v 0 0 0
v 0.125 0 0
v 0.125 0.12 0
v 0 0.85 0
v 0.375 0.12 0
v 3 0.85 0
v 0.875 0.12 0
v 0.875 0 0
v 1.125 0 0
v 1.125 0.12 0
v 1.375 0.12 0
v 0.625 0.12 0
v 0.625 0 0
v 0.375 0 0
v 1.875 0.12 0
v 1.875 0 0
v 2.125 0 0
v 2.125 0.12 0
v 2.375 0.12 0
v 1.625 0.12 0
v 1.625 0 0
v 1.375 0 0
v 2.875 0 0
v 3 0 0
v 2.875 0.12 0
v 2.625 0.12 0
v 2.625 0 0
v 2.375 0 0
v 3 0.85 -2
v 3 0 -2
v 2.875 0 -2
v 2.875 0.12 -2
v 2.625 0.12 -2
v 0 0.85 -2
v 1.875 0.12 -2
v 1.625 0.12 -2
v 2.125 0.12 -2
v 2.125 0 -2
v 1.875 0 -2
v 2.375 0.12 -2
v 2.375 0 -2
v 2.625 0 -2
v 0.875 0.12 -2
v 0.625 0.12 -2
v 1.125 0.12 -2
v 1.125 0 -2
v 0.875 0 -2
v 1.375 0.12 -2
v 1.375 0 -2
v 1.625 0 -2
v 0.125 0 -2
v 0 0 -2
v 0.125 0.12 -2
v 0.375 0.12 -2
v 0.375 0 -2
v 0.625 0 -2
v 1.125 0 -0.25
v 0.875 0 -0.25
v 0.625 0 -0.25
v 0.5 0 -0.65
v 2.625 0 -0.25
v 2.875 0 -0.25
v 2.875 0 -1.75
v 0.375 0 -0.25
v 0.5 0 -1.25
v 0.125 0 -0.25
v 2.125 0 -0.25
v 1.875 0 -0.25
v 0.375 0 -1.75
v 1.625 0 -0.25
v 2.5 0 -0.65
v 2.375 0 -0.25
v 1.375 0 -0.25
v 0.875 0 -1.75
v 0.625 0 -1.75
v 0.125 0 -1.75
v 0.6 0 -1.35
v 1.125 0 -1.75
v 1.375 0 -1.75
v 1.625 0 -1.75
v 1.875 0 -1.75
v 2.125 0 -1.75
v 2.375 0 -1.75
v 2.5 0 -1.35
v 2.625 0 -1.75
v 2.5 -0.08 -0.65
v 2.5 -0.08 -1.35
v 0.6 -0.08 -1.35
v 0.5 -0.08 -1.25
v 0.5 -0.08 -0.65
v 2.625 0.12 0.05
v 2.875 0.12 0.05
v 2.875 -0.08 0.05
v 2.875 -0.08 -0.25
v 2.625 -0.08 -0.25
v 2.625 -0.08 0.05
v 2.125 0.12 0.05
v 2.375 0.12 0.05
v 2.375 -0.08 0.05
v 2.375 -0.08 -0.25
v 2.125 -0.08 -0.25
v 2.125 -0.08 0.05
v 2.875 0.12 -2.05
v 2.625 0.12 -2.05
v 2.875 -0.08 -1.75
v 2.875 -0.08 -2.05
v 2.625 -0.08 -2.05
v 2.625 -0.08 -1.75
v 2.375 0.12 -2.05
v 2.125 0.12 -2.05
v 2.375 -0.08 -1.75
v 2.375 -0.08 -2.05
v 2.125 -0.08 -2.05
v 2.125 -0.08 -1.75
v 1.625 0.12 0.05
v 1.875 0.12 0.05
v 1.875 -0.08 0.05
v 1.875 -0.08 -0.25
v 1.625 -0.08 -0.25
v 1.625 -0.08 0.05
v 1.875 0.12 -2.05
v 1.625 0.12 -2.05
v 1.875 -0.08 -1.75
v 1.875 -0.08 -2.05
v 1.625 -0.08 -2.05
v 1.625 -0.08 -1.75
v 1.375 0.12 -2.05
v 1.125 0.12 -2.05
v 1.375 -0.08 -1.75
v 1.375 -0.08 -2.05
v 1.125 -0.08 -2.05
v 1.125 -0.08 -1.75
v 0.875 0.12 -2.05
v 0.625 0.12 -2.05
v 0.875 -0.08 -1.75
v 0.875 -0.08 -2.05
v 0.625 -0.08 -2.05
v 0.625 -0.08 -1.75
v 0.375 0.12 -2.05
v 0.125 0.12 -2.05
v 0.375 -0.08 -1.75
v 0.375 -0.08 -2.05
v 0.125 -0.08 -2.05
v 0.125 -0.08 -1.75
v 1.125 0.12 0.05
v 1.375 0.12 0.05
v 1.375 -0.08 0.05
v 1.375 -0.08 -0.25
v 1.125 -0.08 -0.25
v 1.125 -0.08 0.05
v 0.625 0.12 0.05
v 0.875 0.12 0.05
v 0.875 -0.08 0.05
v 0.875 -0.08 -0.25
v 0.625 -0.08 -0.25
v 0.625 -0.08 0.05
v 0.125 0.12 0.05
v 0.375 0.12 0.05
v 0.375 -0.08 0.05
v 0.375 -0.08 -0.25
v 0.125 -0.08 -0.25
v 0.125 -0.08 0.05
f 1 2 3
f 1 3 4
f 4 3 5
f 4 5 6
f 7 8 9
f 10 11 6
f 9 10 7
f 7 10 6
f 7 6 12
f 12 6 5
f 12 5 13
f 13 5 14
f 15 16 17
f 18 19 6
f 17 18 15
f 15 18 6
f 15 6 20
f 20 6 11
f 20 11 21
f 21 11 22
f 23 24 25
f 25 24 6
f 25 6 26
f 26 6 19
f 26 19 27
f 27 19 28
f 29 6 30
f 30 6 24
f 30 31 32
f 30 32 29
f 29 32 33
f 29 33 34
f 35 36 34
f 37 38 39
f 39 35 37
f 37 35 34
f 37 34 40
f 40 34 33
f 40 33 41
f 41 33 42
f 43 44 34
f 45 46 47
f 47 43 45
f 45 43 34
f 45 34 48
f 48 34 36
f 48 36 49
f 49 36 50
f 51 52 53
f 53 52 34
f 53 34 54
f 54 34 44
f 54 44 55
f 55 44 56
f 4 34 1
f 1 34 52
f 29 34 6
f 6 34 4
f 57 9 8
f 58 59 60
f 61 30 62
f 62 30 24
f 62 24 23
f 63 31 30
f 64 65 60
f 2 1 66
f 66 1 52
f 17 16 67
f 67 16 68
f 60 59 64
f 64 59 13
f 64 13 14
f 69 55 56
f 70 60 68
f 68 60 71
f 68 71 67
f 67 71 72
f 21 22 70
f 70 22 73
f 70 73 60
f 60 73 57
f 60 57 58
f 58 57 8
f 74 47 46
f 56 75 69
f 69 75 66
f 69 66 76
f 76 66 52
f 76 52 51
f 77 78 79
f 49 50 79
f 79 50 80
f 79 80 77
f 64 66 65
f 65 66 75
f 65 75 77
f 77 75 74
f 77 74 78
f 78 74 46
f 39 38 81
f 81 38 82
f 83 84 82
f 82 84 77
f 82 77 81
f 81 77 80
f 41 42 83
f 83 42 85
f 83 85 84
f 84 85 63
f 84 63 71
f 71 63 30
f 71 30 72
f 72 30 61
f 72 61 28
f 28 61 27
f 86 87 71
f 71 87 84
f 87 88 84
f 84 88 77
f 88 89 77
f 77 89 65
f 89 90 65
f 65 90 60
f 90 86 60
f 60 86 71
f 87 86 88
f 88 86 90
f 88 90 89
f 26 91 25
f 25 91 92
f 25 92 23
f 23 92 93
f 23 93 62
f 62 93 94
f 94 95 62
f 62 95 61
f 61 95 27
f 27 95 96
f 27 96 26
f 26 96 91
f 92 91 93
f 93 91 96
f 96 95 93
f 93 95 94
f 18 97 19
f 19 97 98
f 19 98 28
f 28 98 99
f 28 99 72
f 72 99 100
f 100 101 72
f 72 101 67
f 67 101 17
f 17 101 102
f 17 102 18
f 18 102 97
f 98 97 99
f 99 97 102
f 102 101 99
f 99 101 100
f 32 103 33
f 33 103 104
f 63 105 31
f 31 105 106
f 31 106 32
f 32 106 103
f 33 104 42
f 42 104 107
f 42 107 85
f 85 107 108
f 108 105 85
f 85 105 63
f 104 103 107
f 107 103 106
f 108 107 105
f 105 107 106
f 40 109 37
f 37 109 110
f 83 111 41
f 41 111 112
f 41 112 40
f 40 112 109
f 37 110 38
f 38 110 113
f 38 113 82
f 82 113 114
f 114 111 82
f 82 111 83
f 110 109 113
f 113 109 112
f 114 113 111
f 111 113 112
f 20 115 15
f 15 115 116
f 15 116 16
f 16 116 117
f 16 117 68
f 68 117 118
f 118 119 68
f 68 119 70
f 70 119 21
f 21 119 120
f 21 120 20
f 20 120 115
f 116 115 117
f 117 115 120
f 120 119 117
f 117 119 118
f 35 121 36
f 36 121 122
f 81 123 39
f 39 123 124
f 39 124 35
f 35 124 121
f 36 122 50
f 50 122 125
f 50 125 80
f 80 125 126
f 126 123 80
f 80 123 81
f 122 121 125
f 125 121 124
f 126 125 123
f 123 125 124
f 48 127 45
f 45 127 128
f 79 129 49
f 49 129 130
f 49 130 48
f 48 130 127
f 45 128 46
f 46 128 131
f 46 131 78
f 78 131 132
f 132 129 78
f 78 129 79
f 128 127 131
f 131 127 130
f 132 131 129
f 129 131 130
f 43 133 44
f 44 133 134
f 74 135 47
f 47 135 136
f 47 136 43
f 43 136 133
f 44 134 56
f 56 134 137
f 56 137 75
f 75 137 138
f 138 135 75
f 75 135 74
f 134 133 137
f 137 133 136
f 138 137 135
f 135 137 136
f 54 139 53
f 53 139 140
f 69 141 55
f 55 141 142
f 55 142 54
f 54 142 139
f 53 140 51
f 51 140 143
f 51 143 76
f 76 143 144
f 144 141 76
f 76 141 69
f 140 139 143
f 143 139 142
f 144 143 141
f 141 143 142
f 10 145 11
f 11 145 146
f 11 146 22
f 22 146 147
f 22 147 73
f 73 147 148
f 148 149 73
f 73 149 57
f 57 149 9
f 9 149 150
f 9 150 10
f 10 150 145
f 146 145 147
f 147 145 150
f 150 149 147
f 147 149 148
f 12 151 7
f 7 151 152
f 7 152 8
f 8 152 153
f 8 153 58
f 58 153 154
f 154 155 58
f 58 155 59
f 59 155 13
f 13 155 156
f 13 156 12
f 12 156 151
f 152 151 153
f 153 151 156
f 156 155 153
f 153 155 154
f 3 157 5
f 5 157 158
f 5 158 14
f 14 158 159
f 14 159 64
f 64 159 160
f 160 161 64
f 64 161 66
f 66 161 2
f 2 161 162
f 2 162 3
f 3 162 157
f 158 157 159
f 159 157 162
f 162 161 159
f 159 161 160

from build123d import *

# Parameters (mm, degrees)
SKETCH1_W           = 3
SKETCH1_H           = 2
BOSS_EXTRUDE1_DEPTH = 0.85
BOSS_EXTRUDE2_START = 0.08
SKETCH2_W           = 0.25
SKETCH2_H           = 0.3
BOSS_EXTRUDE2_DEPTH = 0.2


with BuildPart() as part:
    # Sketch1 → Boss-Extrude1 (new body)
    with BuildSketch(Plane(origin=(0, 0, 0), x_dir=(1, 0, 0), z_dir=(0, 1, 0))):
        with Locations((1.5, 1)):
            Rectangle(SKETCH1_W, SKETCH1_H)
    extrude(amount=BOSS_EXTRUDE1_DEPTH)

    # Sketch2 → Boss-Extrude2 (add)
    with BuildSketch(Plane.XZ.offset(BOSS_EXTRUDE2_START)):
        Polygon((2.5, -0.65), (0.5, -0.65), (0.5, -1.25), (0.6, -1.35), (2.5, -1.35), align=None)
        with Locations((2.25, -0.1)):
            Rectangle(SKETCH2_W, SKETCH2_H)
        with Locations((2.25, -1.9)):
            Rectangle(SKETCH2_W, SKETCH2_H)
        with Locations((1.75, -0.1)):
            Rectangle(SKETCH2_W, SKETCH2_H)
        with Locations((2.75, -0.1)):
            Rectangle(SKETCH2_W, SKETCH2_H)
        with Locations((1.75, -1.9)):
            Rectangle(SKETCH2_W, SKETCH2_H)
        with Locations((2.75, -1.9)):
            Rectangle(SKETCH2_W, SKETCH2_H)
        with Locations((1.25, -0.1)):
            Rectangle(SKETCH2_W, SKETCH2_H)
        with Locations((1.25, -1.9)):
            Rectangle(SKETCH2_W, SKETCH2_H)
        with Locations((0.75, -1.9)):
            Rectangle(SKETCH2_W, SKETCH2_H)
        with Locations((0.25, -1.9)):
            Rectangle(SKETCH2_W, SKETCH2_H)
        with Locations((0.75, -0.1)):
            Rectangle(SKETCH2_W, SKETCH2_H)
        with Locations((0.25, -0.1)):
            Rectangle(SKETCH2_W, SKETCH2_H)
    extrude(amount=-BOSS_EXTRUDE2_DEPTH)


solid = part.part
